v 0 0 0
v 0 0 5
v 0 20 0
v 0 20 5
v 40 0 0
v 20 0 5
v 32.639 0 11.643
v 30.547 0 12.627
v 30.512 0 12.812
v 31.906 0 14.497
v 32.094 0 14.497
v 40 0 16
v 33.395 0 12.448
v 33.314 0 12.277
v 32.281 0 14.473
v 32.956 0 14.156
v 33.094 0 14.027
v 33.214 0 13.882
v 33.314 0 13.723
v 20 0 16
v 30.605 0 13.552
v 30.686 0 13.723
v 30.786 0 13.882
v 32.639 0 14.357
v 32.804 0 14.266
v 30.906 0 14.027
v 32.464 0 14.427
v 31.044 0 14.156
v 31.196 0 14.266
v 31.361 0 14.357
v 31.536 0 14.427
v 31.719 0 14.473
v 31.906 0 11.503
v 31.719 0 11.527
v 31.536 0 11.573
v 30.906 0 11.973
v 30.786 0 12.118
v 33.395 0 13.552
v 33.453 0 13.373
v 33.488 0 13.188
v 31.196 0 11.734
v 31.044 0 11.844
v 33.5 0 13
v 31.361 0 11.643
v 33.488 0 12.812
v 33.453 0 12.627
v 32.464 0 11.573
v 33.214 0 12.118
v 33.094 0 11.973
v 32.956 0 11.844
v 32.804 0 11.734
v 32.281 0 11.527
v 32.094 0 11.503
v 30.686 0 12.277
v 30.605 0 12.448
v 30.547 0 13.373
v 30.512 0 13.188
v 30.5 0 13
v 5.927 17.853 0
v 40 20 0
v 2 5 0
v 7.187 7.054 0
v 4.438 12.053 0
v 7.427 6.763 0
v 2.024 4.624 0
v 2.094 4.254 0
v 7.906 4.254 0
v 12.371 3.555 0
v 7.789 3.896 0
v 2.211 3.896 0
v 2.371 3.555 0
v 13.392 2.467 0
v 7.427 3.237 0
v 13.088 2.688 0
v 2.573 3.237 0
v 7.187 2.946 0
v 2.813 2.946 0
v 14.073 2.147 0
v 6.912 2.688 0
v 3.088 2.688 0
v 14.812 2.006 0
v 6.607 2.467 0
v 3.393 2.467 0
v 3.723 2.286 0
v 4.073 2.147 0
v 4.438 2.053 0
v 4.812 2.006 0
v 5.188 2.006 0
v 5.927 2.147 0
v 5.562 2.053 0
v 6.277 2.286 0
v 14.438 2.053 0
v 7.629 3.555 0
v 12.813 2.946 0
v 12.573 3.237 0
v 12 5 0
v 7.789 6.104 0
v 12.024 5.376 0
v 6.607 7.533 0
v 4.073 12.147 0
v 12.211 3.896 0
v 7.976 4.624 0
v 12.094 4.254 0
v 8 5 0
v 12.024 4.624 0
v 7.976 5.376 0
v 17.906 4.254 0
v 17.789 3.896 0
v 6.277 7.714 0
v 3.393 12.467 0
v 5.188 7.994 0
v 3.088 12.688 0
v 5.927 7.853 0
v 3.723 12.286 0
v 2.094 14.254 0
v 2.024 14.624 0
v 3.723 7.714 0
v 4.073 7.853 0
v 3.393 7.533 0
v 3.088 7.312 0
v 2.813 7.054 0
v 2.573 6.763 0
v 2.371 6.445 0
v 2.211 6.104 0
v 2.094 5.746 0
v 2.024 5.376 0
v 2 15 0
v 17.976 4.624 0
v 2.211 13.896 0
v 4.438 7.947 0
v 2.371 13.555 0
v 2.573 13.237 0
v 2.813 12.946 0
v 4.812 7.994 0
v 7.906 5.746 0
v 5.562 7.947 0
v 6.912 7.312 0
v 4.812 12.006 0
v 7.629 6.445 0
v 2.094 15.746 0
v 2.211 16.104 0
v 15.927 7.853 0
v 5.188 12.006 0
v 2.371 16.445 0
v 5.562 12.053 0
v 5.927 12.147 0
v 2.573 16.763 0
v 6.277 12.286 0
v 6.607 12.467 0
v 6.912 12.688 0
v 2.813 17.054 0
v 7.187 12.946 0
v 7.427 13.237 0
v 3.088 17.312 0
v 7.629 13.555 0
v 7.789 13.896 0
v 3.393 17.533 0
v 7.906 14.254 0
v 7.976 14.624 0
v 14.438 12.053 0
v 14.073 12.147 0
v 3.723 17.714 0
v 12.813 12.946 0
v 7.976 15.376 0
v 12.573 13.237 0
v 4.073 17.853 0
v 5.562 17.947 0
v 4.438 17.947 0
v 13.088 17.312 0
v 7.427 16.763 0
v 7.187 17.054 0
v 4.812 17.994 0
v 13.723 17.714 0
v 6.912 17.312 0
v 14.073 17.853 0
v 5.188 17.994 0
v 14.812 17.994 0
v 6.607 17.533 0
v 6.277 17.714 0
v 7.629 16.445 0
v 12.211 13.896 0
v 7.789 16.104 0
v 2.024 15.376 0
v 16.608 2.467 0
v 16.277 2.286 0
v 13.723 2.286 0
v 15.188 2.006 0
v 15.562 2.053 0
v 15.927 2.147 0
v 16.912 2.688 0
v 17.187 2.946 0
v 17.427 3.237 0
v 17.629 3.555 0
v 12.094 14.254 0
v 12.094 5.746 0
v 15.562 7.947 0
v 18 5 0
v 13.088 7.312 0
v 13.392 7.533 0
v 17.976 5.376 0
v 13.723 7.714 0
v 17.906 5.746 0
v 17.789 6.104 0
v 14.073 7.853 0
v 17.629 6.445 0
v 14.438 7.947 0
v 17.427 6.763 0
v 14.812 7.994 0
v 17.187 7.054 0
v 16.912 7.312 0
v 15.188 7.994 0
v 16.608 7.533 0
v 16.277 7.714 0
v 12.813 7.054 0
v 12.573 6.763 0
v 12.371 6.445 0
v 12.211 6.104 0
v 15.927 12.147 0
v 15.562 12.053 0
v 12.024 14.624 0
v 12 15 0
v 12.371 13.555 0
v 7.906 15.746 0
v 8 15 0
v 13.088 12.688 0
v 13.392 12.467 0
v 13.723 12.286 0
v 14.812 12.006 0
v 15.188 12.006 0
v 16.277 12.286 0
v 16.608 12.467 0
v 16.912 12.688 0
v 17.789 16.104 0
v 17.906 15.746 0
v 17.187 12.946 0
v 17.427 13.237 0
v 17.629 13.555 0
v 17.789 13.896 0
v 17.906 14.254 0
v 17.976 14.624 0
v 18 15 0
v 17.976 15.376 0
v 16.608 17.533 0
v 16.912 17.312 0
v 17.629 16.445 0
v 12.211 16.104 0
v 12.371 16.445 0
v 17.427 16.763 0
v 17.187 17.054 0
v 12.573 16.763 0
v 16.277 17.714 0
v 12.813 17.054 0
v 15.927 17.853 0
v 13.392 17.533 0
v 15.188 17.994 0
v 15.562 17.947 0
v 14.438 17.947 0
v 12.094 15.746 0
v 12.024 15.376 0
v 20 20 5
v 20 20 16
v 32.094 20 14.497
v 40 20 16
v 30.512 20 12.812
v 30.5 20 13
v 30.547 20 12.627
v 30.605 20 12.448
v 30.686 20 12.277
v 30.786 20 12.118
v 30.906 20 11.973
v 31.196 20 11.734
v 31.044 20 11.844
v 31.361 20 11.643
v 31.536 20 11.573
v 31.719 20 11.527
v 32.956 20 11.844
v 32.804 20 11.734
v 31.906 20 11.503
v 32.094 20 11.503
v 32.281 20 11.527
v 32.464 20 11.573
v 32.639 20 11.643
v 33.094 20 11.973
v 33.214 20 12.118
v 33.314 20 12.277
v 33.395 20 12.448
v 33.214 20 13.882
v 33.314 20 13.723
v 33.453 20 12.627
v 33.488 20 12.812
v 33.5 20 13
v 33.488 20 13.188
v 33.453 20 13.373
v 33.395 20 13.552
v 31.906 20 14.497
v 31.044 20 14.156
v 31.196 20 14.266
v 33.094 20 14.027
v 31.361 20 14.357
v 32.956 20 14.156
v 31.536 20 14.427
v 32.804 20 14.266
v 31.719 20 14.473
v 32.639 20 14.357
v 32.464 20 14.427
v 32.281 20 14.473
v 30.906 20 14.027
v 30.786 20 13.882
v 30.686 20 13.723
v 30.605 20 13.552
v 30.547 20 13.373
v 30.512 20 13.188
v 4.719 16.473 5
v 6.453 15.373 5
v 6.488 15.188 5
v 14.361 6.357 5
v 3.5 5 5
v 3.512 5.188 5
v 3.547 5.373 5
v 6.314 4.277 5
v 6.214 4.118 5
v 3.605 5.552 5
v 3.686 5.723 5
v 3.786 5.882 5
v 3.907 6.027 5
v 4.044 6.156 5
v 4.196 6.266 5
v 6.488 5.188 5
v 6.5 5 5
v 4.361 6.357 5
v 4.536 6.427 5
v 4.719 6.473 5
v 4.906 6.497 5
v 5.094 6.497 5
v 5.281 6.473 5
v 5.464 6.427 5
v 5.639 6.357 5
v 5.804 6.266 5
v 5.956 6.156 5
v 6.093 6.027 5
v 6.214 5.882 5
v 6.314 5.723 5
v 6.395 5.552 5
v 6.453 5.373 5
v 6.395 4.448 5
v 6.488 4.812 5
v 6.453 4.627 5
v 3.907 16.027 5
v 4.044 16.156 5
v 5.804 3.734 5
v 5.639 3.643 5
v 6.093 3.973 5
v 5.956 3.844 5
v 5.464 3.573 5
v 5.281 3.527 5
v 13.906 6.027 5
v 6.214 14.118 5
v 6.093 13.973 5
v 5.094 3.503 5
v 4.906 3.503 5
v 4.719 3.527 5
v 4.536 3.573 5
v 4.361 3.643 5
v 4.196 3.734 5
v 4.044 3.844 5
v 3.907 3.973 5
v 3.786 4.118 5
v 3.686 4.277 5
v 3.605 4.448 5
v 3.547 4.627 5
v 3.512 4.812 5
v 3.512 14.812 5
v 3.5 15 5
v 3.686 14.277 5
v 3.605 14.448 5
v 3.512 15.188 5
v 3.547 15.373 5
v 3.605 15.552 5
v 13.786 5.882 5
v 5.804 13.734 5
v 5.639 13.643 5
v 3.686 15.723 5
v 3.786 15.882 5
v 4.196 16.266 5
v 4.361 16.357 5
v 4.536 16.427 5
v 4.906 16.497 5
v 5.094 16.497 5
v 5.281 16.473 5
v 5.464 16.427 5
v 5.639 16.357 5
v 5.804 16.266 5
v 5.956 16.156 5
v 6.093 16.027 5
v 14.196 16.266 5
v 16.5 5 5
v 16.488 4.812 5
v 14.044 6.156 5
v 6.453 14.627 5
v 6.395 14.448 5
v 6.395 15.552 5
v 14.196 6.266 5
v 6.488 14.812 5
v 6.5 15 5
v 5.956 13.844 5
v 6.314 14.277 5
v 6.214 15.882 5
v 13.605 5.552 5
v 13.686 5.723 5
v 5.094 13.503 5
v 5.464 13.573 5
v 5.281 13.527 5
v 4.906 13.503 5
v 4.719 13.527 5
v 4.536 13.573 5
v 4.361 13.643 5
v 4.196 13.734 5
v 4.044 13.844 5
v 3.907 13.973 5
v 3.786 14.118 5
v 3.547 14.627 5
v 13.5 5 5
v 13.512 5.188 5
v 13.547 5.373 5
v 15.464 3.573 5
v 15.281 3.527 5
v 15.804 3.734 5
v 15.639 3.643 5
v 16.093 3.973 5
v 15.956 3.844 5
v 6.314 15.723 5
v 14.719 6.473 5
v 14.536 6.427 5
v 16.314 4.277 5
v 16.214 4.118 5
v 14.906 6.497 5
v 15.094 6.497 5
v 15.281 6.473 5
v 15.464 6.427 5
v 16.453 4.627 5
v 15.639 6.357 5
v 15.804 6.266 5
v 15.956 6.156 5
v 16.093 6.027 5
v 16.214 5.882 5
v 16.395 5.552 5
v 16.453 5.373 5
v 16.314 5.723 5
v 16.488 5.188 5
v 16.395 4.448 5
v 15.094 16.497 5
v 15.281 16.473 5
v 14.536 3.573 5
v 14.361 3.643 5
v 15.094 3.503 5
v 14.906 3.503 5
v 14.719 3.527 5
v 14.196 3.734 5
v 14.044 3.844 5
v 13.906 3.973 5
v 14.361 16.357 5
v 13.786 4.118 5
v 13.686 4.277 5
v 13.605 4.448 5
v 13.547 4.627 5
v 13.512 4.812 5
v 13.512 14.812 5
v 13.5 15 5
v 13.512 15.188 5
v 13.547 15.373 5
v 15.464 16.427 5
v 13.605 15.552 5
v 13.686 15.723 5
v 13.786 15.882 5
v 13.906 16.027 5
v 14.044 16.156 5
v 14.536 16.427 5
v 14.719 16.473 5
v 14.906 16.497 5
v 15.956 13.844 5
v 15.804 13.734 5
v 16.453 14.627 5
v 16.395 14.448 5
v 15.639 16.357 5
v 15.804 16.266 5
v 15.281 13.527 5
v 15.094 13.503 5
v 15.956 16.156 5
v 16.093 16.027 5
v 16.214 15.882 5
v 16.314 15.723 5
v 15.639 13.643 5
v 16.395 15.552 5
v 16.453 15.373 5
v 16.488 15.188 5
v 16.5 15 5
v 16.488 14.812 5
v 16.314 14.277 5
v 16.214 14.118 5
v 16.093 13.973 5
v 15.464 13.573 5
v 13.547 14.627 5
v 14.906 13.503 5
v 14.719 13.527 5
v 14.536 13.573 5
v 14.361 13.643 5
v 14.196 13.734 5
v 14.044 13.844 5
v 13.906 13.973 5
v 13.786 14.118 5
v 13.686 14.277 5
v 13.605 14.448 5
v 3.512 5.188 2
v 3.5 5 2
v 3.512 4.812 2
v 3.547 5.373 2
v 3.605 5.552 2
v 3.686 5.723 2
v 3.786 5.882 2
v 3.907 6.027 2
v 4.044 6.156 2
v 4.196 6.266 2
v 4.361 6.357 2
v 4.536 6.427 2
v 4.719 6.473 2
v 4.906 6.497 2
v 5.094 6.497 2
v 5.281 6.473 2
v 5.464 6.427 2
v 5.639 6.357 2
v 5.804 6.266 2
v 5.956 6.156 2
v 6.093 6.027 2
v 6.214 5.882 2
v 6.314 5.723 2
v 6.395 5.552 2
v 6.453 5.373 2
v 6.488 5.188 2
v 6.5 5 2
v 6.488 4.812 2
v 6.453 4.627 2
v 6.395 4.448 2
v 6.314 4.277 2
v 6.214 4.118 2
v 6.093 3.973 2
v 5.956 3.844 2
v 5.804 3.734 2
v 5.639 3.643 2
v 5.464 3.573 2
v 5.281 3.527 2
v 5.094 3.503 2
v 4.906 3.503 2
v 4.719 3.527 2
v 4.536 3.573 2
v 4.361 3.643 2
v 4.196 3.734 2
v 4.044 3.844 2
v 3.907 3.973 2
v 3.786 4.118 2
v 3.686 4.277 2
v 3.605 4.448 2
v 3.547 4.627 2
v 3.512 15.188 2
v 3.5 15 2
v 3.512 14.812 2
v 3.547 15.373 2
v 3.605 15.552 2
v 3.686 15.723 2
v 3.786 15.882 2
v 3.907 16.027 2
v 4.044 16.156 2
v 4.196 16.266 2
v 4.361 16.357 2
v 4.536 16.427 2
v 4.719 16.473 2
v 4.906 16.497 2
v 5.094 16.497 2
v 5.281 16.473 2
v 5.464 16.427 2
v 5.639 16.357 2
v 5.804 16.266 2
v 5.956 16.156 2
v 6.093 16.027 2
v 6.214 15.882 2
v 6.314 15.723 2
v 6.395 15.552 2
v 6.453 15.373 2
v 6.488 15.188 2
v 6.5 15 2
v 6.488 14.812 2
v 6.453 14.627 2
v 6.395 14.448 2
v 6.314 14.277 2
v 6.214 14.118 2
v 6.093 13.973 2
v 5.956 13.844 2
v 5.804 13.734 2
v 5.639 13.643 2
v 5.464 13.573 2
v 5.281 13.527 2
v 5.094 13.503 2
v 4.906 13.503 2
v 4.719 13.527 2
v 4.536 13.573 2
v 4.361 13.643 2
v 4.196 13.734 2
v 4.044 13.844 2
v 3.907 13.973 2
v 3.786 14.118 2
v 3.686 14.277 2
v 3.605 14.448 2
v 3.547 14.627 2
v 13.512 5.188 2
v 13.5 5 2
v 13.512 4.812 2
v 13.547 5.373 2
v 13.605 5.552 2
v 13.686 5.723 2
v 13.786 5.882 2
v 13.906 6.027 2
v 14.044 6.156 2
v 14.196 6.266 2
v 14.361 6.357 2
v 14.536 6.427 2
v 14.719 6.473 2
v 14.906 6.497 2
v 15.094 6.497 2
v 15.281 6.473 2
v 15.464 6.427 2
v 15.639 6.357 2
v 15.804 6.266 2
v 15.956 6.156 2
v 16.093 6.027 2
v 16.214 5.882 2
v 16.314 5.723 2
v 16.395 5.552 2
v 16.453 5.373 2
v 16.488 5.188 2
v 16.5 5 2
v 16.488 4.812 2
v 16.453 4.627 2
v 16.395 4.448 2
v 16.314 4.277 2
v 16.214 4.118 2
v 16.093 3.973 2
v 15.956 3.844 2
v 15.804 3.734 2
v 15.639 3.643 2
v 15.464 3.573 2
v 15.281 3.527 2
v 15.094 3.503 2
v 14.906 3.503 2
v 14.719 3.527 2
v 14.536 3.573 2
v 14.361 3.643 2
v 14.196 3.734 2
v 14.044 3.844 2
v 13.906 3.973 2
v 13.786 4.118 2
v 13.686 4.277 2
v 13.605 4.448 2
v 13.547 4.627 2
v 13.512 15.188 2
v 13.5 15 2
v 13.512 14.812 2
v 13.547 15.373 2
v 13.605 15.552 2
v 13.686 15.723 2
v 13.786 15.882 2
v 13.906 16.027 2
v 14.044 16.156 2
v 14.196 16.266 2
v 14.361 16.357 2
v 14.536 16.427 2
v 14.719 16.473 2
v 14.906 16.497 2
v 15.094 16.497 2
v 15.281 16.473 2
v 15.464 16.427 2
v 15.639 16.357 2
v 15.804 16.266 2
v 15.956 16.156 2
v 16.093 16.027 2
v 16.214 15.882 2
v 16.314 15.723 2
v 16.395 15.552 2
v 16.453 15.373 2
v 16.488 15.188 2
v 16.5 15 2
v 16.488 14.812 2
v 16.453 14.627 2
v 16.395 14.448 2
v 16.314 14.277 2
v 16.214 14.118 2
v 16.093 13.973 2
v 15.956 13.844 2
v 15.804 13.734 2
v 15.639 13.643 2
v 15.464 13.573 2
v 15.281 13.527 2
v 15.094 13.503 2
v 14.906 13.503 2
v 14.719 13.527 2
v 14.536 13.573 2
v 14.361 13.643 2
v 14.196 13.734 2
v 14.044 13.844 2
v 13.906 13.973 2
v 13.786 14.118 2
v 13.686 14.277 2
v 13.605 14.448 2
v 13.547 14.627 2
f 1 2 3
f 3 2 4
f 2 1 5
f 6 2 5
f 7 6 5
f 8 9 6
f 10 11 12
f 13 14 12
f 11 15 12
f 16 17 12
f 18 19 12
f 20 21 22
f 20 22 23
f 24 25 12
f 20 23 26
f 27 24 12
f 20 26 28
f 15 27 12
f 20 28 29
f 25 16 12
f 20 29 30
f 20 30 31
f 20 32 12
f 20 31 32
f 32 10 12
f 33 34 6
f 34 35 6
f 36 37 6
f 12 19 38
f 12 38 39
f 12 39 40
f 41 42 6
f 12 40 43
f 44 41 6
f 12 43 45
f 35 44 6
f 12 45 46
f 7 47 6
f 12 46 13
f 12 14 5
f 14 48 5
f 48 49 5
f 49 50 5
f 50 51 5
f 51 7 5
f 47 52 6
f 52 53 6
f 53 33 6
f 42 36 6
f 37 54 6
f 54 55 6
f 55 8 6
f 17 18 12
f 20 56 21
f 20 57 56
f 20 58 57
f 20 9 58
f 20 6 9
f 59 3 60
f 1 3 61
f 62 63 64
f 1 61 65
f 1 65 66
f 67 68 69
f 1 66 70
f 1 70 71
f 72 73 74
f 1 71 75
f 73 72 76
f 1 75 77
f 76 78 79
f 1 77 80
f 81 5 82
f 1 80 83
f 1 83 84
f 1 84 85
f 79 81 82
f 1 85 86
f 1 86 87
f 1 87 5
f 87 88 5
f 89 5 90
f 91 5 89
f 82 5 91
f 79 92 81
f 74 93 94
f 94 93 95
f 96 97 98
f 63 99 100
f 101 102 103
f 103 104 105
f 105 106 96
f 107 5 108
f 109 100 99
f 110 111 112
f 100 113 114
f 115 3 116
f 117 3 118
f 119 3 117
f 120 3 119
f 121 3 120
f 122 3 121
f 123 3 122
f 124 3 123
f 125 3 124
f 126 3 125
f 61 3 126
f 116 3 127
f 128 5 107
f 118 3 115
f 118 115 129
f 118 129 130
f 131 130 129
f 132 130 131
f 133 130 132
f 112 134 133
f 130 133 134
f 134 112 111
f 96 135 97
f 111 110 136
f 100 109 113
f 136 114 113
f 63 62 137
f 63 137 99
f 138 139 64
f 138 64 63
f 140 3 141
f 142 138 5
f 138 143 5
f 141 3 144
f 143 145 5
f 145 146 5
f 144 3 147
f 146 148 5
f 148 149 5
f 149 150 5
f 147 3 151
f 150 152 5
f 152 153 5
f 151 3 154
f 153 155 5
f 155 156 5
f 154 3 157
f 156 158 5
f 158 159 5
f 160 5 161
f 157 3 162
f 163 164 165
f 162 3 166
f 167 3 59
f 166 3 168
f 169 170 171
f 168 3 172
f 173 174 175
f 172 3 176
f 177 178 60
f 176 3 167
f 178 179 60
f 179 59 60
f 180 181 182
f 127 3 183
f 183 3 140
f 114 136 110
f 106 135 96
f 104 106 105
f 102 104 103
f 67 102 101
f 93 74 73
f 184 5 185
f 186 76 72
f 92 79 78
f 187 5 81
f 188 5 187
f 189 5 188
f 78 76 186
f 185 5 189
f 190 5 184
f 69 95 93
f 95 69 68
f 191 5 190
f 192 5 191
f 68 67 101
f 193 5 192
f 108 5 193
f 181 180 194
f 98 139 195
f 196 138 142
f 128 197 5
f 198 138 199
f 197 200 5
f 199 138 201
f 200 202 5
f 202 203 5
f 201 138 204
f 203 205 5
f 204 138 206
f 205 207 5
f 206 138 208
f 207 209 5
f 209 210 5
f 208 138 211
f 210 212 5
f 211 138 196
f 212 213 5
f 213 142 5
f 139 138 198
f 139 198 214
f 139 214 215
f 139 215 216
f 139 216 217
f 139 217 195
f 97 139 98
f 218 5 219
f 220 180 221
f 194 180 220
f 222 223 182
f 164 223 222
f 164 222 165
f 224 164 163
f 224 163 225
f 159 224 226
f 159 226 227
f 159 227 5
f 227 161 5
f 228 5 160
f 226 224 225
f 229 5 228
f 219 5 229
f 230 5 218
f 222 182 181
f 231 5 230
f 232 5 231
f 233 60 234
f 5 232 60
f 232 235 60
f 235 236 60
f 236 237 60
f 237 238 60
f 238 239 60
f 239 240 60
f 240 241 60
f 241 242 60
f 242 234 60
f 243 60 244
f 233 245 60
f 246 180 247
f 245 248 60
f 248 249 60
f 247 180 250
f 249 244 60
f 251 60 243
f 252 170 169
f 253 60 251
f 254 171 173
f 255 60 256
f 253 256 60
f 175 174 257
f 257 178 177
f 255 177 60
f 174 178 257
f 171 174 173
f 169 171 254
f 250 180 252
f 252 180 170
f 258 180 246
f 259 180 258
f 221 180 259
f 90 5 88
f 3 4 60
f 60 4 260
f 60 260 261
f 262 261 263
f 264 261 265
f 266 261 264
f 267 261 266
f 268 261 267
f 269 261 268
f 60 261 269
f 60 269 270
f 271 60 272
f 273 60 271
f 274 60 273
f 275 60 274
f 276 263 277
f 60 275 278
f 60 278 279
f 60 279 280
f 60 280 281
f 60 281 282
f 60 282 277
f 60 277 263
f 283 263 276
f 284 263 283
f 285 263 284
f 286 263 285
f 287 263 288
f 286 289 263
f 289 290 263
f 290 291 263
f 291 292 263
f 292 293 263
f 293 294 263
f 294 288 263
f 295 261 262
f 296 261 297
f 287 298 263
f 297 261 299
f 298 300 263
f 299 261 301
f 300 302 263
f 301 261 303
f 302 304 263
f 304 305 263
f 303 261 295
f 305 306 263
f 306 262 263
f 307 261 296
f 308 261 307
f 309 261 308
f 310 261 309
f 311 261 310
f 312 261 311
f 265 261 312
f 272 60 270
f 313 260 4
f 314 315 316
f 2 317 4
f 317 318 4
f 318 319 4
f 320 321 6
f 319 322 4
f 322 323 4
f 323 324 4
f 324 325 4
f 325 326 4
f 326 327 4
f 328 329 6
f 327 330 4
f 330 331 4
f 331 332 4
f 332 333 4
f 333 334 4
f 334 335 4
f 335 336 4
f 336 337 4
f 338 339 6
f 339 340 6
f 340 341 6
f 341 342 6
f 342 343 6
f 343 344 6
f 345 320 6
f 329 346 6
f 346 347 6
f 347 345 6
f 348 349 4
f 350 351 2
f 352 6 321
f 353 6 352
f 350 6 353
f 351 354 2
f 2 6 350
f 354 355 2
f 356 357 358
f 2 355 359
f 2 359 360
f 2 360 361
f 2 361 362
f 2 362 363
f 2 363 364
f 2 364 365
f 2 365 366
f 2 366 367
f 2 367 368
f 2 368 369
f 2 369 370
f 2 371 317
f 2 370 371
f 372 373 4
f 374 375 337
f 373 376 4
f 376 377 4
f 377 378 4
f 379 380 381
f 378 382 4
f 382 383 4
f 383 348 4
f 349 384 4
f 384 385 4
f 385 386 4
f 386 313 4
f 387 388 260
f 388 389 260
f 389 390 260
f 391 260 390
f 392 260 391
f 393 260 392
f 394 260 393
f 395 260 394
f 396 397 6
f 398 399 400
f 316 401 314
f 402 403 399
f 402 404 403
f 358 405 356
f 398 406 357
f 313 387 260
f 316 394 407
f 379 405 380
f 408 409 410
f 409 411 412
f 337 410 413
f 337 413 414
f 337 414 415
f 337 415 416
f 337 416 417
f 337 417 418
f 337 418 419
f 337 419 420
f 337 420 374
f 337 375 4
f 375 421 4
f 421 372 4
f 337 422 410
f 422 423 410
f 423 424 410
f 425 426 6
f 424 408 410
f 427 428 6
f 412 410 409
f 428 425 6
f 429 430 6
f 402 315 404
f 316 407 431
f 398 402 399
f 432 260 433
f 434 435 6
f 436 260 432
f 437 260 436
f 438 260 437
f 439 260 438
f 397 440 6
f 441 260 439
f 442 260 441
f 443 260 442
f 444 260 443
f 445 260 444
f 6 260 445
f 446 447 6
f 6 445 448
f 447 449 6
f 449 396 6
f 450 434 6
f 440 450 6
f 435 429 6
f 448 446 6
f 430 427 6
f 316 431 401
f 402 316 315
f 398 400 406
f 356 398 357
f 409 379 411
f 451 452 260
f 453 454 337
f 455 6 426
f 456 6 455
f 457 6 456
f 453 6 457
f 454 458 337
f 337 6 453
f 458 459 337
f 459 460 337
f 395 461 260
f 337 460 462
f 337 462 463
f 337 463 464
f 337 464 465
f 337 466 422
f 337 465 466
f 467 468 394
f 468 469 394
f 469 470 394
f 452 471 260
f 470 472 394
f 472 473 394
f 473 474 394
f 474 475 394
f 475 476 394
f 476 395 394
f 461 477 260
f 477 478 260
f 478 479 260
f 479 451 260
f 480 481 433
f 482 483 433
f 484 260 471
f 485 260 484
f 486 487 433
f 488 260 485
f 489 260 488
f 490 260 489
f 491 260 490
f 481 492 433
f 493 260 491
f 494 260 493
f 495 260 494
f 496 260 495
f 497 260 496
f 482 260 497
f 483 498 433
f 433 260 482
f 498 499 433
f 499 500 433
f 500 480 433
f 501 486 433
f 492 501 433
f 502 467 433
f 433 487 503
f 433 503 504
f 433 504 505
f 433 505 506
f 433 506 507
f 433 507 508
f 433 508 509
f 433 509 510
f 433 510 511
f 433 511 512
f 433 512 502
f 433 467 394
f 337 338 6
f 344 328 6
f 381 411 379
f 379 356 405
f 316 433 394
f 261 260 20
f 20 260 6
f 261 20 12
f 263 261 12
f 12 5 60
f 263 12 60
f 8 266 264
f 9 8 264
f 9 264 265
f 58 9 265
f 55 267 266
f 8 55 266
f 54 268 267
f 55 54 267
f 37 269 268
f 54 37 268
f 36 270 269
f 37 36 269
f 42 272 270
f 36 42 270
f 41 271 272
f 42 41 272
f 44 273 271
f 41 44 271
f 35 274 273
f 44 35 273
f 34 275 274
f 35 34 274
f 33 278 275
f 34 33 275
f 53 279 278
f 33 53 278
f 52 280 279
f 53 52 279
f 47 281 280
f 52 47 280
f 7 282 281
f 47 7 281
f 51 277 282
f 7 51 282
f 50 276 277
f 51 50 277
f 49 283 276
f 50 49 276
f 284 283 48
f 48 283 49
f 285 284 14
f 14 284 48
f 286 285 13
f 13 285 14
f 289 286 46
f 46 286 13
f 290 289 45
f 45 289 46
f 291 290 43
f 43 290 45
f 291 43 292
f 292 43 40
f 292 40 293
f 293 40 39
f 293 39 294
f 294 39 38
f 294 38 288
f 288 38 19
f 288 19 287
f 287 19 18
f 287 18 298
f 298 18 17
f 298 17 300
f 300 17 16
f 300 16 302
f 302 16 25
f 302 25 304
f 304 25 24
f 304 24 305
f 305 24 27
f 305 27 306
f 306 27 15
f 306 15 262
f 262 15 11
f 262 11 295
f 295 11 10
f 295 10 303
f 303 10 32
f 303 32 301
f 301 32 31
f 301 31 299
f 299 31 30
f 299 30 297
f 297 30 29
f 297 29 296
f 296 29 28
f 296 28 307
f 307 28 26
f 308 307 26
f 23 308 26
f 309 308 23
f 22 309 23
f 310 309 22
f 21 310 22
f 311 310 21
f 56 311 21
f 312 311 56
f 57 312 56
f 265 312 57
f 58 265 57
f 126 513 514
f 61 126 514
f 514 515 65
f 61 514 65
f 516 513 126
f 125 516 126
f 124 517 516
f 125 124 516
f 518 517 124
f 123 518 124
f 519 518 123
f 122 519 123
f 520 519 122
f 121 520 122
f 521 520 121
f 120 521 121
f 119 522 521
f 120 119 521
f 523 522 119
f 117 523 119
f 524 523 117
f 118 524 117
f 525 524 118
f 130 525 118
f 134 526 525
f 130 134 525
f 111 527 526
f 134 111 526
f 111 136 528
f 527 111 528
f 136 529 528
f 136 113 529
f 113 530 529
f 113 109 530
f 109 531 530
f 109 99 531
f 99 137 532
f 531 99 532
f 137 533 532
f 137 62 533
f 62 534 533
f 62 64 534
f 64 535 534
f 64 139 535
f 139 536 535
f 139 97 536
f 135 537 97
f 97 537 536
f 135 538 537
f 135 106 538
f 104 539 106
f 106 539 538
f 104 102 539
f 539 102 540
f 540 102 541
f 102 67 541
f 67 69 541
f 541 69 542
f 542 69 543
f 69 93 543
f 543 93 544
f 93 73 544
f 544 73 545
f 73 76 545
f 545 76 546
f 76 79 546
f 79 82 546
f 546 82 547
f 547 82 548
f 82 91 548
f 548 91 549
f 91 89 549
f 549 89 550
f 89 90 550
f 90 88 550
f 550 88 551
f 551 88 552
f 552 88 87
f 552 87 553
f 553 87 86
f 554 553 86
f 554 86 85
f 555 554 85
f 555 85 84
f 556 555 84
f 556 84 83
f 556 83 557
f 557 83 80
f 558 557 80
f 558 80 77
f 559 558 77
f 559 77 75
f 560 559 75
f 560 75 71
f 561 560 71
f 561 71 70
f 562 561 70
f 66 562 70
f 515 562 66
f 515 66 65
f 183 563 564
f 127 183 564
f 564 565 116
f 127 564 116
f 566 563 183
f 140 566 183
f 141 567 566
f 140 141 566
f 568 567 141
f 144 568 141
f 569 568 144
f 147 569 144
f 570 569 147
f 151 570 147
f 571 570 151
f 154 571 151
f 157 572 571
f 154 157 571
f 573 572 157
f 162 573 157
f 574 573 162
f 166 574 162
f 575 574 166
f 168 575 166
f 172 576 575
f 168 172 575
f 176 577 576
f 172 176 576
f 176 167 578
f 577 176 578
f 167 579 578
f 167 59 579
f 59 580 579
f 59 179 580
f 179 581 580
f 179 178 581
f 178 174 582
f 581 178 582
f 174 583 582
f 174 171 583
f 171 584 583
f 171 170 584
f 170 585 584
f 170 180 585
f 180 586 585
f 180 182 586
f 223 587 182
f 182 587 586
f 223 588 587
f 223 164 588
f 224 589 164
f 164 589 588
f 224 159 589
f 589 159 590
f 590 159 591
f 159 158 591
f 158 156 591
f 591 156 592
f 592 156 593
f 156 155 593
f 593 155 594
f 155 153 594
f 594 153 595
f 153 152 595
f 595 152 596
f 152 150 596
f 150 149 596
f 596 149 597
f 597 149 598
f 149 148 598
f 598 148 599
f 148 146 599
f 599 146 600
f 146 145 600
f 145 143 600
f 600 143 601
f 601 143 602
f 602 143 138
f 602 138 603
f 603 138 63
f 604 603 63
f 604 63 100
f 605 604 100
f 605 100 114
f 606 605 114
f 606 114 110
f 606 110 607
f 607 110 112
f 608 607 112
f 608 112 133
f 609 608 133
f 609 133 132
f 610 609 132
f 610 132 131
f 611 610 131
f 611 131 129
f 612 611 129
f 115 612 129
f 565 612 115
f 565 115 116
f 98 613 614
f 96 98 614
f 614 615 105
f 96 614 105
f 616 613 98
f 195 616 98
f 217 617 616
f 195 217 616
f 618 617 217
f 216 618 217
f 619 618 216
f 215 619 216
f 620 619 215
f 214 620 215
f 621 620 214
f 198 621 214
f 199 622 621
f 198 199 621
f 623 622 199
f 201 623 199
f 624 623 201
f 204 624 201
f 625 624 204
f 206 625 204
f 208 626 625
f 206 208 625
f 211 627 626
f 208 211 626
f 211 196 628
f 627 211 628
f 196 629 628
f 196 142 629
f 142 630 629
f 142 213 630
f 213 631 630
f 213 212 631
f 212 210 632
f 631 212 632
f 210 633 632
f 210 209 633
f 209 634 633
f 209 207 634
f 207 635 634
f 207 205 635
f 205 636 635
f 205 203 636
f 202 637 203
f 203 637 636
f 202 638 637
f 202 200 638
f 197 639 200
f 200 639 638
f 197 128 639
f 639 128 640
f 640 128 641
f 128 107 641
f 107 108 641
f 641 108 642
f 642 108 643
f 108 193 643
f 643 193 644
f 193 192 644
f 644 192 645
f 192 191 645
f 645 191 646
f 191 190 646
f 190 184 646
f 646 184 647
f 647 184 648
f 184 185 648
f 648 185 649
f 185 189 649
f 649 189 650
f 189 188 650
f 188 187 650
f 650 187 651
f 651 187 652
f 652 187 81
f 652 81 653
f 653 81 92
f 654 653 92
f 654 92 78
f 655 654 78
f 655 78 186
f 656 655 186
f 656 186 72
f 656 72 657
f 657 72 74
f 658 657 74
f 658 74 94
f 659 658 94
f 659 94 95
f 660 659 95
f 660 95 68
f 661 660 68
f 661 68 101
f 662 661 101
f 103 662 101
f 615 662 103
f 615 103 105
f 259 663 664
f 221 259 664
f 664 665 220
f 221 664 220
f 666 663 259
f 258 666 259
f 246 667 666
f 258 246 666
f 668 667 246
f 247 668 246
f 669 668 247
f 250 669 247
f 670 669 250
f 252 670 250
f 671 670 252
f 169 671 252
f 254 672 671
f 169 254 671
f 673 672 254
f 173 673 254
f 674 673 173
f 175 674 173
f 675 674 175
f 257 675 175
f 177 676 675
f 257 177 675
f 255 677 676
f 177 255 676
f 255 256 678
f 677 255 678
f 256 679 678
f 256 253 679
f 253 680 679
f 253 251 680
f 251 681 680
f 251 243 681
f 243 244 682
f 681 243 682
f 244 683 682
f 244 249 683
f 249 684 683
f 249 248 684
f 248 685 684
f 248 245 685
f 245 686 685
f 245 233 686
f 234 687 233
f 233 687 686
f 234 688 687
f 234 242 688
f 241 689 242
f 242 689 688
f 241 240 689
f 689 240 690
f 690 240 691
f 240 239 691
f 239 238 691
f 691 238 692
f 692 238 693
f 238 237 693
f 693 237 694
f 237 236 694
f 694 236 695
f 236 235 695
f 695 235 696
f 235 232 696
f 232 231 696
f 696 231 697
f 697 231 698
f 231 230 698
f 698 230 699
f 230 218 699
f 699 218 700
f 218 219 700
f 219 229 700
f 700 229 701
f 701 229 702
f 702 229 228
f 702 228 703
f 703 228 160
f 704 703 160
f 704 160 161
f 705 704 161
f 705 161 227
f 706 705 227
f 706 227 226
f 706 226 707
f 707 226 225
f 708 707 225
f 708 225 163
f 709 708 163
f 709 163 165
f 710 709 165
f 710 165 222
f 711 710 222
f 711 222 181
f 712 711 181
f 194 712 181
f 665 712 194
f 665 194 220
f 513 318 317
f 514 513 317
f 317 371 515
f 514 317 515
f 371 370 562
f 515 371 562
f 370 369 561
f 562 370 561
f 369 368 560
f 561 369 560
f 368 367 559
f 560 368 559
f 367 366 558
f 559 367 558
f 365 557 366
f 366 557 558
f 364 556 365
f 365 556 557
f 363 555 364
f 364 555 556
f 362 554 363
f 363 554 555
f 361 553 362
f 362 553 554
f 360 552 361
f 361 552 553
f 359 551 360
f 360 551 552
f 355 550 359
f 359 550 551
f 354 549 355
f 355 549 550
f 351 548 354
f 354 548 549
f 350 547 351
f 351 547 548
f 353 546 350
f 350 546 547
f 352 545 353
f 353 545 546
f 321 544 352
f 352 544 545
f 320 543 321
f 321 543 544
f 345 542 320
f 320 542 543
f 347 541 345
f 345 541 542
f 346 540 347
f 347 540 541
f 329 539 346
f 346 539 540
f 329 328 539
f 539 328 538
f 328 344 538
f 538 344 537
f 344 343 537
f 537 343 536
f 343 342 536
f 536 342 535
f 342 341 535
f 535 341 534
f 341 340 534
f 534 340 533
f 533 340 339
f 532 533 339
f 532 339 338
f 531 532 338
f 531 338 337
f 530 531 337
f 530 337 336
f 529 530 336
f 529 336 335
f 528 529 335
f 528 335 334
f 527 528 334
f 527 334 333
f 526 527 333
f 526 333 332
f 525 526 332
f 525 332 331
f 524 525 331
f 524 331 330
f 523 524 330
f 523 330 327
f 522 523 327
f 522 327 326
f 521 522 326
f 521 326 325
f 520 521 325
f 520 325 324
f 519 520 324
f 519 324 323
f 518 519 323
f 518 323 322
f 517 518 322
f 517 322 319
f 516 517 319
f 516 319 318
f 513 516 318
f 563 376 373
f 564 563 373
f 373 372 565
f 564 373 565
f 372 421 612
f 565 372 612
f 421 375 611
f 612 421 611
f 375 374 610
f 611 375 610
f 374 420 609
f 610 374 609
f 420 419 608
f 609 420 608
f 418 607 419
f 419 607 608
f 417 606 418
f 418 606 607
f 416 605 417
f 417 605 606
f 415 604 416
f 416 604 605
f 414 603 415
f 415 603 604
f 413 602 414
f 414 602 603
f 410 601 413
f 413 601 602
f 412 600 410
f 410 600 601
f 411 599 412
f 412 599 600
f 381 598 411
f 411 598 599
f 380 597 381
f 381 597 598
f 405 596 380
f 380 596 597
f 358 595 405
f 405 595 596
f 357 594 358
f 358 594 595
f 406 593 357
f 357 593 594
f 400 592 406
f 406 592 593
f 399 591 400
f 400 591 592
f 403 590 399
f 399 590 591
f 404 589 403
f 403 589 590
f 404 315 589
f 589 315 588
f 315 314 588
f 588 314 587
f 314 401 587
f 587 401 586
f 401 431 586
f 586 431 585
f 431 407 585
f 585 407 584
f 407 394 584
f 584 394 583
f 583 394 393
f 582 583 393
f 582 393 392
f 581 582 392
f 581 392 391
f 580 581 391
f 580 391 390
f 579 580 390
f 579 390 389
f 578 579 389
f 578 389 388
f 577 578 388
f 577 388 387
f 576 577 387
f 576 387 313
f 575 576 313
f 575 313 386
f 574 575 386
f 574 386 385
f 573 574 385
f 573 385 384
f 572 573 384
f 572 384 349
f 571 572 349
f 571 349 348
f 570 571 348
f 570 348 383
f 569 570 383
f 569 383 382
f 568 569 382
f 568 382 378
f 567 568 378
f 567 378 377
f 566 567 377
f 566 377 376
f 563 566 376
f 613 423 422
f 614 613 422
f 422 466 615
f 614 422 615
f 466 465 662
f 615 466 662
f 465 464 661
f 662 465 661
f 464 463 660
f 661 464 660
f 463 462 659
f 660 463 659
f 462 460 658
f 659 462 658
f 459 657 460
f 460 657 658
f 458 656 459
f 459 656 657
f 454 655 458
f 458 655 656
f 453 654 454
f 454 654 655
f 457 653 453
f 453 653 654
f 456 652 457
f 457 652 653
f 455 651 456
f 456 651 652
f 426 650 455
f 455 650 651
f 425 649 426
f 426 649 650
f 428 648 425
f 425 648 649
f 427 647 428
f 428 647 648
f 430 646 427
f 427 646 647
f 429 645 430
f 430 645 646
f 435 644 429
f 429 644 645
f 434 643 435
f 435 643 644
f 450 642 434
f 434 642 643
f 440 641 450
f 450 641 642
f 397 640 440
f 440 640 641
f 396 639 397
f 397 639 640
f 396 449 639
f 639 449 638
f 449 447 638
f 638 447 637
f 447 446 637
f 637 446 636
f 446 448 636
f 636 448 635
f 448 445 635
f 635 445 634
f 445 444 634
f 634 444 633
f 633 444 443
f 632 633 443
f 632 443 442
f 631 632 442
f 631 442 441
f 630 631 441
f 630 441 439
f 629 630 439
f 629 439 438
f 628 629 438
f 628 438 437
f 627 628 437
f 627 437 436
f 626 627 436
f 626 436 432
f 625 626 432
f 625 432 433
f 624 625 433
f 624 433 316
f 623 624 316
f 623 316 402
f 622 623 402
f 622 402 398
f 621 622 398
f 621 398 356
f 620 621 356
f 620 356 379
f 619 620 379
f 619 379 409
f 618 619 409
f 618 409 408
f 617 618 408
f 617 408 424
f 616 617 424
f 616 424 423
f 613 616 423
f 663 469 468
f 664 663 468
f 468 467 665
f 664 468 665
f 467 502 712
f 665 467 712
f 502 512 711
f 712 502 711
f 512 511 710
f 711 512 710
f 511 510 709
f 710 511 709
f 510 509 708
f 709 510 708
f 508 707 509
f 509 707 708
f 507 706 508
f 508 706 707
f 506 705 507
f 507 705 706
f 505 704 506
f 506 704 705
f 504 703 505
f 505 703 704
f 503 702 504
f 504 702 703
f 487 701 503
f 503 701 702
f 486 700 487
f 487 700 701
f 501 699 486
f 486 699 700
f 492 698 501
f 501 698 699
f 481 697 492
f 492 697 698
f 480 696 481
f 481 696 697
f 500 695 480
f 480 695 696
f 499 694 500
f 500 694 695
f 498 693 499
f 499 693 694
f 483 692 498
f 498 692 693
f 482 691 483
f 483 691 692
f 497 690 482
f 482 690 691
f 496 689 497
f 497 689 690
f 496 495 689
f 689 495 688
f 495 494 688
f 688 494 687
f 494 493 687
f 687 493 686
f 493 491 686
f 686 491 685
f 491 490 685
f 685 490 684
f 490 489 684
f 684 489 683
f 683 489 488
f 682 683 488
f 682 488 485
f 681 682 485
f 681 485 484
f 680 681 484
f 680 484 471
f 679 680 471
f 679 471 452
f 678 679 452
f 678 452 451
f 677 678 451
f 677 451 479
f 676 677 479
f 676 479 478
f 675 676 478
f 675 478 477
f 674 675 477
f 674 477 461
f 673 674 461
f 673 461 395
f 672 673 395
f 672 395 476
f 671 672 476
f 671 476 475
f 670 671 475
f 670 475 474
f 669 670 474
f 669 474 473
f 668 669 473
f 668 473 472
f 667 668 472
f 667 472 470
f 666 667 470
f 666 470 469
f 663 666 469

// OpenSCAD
r_m3=1.5;
r_tete_m3=3;

module endstop_y(){
	difference(){
		cube([40,20,16]);

		//extrusion générale
		translate([-5,-5,5]){cube([25,30,16]);}

		//trous pour vis de réglage
		translate([20+12,-5,13]){rotate([-90,0,0])cylinder(h = 30, r=r_m3, $fn=50);}


	//trous de vissage
		translate([5,5,0]){cylinder(h = 2, r1 = r_tete_m3, r2=r_m3, $fn=50);}
		translate([5,5,-5]){cylinder(h = 15, r = r_m3, $fn=50);}

		translate([15,5,0]){cylinder(h = 2, r1 = r_tete_m3, r2=r_m3, $fn=50);}
		translate([15,5,-5]){cylinder(h = 15, r = r_m3, $fn=50);}

		translate([5,15,0]){cylinder(h = 2, r1 = r_tete_m3, r2=r_m3, $fn=50);}
		translate([5,15,-5]){cylinder(h = 15, r = r_m3, $fn=50);}

		translate([15,15,0]){cylinder(h = 2, r1 = r_tete_m3, r2=r_m3, $fn=50);}
		translate([15,15,-5]){cylinder(h = 15, r = r_m3, $fn=50);}
		

	}
}

endstop_y();
